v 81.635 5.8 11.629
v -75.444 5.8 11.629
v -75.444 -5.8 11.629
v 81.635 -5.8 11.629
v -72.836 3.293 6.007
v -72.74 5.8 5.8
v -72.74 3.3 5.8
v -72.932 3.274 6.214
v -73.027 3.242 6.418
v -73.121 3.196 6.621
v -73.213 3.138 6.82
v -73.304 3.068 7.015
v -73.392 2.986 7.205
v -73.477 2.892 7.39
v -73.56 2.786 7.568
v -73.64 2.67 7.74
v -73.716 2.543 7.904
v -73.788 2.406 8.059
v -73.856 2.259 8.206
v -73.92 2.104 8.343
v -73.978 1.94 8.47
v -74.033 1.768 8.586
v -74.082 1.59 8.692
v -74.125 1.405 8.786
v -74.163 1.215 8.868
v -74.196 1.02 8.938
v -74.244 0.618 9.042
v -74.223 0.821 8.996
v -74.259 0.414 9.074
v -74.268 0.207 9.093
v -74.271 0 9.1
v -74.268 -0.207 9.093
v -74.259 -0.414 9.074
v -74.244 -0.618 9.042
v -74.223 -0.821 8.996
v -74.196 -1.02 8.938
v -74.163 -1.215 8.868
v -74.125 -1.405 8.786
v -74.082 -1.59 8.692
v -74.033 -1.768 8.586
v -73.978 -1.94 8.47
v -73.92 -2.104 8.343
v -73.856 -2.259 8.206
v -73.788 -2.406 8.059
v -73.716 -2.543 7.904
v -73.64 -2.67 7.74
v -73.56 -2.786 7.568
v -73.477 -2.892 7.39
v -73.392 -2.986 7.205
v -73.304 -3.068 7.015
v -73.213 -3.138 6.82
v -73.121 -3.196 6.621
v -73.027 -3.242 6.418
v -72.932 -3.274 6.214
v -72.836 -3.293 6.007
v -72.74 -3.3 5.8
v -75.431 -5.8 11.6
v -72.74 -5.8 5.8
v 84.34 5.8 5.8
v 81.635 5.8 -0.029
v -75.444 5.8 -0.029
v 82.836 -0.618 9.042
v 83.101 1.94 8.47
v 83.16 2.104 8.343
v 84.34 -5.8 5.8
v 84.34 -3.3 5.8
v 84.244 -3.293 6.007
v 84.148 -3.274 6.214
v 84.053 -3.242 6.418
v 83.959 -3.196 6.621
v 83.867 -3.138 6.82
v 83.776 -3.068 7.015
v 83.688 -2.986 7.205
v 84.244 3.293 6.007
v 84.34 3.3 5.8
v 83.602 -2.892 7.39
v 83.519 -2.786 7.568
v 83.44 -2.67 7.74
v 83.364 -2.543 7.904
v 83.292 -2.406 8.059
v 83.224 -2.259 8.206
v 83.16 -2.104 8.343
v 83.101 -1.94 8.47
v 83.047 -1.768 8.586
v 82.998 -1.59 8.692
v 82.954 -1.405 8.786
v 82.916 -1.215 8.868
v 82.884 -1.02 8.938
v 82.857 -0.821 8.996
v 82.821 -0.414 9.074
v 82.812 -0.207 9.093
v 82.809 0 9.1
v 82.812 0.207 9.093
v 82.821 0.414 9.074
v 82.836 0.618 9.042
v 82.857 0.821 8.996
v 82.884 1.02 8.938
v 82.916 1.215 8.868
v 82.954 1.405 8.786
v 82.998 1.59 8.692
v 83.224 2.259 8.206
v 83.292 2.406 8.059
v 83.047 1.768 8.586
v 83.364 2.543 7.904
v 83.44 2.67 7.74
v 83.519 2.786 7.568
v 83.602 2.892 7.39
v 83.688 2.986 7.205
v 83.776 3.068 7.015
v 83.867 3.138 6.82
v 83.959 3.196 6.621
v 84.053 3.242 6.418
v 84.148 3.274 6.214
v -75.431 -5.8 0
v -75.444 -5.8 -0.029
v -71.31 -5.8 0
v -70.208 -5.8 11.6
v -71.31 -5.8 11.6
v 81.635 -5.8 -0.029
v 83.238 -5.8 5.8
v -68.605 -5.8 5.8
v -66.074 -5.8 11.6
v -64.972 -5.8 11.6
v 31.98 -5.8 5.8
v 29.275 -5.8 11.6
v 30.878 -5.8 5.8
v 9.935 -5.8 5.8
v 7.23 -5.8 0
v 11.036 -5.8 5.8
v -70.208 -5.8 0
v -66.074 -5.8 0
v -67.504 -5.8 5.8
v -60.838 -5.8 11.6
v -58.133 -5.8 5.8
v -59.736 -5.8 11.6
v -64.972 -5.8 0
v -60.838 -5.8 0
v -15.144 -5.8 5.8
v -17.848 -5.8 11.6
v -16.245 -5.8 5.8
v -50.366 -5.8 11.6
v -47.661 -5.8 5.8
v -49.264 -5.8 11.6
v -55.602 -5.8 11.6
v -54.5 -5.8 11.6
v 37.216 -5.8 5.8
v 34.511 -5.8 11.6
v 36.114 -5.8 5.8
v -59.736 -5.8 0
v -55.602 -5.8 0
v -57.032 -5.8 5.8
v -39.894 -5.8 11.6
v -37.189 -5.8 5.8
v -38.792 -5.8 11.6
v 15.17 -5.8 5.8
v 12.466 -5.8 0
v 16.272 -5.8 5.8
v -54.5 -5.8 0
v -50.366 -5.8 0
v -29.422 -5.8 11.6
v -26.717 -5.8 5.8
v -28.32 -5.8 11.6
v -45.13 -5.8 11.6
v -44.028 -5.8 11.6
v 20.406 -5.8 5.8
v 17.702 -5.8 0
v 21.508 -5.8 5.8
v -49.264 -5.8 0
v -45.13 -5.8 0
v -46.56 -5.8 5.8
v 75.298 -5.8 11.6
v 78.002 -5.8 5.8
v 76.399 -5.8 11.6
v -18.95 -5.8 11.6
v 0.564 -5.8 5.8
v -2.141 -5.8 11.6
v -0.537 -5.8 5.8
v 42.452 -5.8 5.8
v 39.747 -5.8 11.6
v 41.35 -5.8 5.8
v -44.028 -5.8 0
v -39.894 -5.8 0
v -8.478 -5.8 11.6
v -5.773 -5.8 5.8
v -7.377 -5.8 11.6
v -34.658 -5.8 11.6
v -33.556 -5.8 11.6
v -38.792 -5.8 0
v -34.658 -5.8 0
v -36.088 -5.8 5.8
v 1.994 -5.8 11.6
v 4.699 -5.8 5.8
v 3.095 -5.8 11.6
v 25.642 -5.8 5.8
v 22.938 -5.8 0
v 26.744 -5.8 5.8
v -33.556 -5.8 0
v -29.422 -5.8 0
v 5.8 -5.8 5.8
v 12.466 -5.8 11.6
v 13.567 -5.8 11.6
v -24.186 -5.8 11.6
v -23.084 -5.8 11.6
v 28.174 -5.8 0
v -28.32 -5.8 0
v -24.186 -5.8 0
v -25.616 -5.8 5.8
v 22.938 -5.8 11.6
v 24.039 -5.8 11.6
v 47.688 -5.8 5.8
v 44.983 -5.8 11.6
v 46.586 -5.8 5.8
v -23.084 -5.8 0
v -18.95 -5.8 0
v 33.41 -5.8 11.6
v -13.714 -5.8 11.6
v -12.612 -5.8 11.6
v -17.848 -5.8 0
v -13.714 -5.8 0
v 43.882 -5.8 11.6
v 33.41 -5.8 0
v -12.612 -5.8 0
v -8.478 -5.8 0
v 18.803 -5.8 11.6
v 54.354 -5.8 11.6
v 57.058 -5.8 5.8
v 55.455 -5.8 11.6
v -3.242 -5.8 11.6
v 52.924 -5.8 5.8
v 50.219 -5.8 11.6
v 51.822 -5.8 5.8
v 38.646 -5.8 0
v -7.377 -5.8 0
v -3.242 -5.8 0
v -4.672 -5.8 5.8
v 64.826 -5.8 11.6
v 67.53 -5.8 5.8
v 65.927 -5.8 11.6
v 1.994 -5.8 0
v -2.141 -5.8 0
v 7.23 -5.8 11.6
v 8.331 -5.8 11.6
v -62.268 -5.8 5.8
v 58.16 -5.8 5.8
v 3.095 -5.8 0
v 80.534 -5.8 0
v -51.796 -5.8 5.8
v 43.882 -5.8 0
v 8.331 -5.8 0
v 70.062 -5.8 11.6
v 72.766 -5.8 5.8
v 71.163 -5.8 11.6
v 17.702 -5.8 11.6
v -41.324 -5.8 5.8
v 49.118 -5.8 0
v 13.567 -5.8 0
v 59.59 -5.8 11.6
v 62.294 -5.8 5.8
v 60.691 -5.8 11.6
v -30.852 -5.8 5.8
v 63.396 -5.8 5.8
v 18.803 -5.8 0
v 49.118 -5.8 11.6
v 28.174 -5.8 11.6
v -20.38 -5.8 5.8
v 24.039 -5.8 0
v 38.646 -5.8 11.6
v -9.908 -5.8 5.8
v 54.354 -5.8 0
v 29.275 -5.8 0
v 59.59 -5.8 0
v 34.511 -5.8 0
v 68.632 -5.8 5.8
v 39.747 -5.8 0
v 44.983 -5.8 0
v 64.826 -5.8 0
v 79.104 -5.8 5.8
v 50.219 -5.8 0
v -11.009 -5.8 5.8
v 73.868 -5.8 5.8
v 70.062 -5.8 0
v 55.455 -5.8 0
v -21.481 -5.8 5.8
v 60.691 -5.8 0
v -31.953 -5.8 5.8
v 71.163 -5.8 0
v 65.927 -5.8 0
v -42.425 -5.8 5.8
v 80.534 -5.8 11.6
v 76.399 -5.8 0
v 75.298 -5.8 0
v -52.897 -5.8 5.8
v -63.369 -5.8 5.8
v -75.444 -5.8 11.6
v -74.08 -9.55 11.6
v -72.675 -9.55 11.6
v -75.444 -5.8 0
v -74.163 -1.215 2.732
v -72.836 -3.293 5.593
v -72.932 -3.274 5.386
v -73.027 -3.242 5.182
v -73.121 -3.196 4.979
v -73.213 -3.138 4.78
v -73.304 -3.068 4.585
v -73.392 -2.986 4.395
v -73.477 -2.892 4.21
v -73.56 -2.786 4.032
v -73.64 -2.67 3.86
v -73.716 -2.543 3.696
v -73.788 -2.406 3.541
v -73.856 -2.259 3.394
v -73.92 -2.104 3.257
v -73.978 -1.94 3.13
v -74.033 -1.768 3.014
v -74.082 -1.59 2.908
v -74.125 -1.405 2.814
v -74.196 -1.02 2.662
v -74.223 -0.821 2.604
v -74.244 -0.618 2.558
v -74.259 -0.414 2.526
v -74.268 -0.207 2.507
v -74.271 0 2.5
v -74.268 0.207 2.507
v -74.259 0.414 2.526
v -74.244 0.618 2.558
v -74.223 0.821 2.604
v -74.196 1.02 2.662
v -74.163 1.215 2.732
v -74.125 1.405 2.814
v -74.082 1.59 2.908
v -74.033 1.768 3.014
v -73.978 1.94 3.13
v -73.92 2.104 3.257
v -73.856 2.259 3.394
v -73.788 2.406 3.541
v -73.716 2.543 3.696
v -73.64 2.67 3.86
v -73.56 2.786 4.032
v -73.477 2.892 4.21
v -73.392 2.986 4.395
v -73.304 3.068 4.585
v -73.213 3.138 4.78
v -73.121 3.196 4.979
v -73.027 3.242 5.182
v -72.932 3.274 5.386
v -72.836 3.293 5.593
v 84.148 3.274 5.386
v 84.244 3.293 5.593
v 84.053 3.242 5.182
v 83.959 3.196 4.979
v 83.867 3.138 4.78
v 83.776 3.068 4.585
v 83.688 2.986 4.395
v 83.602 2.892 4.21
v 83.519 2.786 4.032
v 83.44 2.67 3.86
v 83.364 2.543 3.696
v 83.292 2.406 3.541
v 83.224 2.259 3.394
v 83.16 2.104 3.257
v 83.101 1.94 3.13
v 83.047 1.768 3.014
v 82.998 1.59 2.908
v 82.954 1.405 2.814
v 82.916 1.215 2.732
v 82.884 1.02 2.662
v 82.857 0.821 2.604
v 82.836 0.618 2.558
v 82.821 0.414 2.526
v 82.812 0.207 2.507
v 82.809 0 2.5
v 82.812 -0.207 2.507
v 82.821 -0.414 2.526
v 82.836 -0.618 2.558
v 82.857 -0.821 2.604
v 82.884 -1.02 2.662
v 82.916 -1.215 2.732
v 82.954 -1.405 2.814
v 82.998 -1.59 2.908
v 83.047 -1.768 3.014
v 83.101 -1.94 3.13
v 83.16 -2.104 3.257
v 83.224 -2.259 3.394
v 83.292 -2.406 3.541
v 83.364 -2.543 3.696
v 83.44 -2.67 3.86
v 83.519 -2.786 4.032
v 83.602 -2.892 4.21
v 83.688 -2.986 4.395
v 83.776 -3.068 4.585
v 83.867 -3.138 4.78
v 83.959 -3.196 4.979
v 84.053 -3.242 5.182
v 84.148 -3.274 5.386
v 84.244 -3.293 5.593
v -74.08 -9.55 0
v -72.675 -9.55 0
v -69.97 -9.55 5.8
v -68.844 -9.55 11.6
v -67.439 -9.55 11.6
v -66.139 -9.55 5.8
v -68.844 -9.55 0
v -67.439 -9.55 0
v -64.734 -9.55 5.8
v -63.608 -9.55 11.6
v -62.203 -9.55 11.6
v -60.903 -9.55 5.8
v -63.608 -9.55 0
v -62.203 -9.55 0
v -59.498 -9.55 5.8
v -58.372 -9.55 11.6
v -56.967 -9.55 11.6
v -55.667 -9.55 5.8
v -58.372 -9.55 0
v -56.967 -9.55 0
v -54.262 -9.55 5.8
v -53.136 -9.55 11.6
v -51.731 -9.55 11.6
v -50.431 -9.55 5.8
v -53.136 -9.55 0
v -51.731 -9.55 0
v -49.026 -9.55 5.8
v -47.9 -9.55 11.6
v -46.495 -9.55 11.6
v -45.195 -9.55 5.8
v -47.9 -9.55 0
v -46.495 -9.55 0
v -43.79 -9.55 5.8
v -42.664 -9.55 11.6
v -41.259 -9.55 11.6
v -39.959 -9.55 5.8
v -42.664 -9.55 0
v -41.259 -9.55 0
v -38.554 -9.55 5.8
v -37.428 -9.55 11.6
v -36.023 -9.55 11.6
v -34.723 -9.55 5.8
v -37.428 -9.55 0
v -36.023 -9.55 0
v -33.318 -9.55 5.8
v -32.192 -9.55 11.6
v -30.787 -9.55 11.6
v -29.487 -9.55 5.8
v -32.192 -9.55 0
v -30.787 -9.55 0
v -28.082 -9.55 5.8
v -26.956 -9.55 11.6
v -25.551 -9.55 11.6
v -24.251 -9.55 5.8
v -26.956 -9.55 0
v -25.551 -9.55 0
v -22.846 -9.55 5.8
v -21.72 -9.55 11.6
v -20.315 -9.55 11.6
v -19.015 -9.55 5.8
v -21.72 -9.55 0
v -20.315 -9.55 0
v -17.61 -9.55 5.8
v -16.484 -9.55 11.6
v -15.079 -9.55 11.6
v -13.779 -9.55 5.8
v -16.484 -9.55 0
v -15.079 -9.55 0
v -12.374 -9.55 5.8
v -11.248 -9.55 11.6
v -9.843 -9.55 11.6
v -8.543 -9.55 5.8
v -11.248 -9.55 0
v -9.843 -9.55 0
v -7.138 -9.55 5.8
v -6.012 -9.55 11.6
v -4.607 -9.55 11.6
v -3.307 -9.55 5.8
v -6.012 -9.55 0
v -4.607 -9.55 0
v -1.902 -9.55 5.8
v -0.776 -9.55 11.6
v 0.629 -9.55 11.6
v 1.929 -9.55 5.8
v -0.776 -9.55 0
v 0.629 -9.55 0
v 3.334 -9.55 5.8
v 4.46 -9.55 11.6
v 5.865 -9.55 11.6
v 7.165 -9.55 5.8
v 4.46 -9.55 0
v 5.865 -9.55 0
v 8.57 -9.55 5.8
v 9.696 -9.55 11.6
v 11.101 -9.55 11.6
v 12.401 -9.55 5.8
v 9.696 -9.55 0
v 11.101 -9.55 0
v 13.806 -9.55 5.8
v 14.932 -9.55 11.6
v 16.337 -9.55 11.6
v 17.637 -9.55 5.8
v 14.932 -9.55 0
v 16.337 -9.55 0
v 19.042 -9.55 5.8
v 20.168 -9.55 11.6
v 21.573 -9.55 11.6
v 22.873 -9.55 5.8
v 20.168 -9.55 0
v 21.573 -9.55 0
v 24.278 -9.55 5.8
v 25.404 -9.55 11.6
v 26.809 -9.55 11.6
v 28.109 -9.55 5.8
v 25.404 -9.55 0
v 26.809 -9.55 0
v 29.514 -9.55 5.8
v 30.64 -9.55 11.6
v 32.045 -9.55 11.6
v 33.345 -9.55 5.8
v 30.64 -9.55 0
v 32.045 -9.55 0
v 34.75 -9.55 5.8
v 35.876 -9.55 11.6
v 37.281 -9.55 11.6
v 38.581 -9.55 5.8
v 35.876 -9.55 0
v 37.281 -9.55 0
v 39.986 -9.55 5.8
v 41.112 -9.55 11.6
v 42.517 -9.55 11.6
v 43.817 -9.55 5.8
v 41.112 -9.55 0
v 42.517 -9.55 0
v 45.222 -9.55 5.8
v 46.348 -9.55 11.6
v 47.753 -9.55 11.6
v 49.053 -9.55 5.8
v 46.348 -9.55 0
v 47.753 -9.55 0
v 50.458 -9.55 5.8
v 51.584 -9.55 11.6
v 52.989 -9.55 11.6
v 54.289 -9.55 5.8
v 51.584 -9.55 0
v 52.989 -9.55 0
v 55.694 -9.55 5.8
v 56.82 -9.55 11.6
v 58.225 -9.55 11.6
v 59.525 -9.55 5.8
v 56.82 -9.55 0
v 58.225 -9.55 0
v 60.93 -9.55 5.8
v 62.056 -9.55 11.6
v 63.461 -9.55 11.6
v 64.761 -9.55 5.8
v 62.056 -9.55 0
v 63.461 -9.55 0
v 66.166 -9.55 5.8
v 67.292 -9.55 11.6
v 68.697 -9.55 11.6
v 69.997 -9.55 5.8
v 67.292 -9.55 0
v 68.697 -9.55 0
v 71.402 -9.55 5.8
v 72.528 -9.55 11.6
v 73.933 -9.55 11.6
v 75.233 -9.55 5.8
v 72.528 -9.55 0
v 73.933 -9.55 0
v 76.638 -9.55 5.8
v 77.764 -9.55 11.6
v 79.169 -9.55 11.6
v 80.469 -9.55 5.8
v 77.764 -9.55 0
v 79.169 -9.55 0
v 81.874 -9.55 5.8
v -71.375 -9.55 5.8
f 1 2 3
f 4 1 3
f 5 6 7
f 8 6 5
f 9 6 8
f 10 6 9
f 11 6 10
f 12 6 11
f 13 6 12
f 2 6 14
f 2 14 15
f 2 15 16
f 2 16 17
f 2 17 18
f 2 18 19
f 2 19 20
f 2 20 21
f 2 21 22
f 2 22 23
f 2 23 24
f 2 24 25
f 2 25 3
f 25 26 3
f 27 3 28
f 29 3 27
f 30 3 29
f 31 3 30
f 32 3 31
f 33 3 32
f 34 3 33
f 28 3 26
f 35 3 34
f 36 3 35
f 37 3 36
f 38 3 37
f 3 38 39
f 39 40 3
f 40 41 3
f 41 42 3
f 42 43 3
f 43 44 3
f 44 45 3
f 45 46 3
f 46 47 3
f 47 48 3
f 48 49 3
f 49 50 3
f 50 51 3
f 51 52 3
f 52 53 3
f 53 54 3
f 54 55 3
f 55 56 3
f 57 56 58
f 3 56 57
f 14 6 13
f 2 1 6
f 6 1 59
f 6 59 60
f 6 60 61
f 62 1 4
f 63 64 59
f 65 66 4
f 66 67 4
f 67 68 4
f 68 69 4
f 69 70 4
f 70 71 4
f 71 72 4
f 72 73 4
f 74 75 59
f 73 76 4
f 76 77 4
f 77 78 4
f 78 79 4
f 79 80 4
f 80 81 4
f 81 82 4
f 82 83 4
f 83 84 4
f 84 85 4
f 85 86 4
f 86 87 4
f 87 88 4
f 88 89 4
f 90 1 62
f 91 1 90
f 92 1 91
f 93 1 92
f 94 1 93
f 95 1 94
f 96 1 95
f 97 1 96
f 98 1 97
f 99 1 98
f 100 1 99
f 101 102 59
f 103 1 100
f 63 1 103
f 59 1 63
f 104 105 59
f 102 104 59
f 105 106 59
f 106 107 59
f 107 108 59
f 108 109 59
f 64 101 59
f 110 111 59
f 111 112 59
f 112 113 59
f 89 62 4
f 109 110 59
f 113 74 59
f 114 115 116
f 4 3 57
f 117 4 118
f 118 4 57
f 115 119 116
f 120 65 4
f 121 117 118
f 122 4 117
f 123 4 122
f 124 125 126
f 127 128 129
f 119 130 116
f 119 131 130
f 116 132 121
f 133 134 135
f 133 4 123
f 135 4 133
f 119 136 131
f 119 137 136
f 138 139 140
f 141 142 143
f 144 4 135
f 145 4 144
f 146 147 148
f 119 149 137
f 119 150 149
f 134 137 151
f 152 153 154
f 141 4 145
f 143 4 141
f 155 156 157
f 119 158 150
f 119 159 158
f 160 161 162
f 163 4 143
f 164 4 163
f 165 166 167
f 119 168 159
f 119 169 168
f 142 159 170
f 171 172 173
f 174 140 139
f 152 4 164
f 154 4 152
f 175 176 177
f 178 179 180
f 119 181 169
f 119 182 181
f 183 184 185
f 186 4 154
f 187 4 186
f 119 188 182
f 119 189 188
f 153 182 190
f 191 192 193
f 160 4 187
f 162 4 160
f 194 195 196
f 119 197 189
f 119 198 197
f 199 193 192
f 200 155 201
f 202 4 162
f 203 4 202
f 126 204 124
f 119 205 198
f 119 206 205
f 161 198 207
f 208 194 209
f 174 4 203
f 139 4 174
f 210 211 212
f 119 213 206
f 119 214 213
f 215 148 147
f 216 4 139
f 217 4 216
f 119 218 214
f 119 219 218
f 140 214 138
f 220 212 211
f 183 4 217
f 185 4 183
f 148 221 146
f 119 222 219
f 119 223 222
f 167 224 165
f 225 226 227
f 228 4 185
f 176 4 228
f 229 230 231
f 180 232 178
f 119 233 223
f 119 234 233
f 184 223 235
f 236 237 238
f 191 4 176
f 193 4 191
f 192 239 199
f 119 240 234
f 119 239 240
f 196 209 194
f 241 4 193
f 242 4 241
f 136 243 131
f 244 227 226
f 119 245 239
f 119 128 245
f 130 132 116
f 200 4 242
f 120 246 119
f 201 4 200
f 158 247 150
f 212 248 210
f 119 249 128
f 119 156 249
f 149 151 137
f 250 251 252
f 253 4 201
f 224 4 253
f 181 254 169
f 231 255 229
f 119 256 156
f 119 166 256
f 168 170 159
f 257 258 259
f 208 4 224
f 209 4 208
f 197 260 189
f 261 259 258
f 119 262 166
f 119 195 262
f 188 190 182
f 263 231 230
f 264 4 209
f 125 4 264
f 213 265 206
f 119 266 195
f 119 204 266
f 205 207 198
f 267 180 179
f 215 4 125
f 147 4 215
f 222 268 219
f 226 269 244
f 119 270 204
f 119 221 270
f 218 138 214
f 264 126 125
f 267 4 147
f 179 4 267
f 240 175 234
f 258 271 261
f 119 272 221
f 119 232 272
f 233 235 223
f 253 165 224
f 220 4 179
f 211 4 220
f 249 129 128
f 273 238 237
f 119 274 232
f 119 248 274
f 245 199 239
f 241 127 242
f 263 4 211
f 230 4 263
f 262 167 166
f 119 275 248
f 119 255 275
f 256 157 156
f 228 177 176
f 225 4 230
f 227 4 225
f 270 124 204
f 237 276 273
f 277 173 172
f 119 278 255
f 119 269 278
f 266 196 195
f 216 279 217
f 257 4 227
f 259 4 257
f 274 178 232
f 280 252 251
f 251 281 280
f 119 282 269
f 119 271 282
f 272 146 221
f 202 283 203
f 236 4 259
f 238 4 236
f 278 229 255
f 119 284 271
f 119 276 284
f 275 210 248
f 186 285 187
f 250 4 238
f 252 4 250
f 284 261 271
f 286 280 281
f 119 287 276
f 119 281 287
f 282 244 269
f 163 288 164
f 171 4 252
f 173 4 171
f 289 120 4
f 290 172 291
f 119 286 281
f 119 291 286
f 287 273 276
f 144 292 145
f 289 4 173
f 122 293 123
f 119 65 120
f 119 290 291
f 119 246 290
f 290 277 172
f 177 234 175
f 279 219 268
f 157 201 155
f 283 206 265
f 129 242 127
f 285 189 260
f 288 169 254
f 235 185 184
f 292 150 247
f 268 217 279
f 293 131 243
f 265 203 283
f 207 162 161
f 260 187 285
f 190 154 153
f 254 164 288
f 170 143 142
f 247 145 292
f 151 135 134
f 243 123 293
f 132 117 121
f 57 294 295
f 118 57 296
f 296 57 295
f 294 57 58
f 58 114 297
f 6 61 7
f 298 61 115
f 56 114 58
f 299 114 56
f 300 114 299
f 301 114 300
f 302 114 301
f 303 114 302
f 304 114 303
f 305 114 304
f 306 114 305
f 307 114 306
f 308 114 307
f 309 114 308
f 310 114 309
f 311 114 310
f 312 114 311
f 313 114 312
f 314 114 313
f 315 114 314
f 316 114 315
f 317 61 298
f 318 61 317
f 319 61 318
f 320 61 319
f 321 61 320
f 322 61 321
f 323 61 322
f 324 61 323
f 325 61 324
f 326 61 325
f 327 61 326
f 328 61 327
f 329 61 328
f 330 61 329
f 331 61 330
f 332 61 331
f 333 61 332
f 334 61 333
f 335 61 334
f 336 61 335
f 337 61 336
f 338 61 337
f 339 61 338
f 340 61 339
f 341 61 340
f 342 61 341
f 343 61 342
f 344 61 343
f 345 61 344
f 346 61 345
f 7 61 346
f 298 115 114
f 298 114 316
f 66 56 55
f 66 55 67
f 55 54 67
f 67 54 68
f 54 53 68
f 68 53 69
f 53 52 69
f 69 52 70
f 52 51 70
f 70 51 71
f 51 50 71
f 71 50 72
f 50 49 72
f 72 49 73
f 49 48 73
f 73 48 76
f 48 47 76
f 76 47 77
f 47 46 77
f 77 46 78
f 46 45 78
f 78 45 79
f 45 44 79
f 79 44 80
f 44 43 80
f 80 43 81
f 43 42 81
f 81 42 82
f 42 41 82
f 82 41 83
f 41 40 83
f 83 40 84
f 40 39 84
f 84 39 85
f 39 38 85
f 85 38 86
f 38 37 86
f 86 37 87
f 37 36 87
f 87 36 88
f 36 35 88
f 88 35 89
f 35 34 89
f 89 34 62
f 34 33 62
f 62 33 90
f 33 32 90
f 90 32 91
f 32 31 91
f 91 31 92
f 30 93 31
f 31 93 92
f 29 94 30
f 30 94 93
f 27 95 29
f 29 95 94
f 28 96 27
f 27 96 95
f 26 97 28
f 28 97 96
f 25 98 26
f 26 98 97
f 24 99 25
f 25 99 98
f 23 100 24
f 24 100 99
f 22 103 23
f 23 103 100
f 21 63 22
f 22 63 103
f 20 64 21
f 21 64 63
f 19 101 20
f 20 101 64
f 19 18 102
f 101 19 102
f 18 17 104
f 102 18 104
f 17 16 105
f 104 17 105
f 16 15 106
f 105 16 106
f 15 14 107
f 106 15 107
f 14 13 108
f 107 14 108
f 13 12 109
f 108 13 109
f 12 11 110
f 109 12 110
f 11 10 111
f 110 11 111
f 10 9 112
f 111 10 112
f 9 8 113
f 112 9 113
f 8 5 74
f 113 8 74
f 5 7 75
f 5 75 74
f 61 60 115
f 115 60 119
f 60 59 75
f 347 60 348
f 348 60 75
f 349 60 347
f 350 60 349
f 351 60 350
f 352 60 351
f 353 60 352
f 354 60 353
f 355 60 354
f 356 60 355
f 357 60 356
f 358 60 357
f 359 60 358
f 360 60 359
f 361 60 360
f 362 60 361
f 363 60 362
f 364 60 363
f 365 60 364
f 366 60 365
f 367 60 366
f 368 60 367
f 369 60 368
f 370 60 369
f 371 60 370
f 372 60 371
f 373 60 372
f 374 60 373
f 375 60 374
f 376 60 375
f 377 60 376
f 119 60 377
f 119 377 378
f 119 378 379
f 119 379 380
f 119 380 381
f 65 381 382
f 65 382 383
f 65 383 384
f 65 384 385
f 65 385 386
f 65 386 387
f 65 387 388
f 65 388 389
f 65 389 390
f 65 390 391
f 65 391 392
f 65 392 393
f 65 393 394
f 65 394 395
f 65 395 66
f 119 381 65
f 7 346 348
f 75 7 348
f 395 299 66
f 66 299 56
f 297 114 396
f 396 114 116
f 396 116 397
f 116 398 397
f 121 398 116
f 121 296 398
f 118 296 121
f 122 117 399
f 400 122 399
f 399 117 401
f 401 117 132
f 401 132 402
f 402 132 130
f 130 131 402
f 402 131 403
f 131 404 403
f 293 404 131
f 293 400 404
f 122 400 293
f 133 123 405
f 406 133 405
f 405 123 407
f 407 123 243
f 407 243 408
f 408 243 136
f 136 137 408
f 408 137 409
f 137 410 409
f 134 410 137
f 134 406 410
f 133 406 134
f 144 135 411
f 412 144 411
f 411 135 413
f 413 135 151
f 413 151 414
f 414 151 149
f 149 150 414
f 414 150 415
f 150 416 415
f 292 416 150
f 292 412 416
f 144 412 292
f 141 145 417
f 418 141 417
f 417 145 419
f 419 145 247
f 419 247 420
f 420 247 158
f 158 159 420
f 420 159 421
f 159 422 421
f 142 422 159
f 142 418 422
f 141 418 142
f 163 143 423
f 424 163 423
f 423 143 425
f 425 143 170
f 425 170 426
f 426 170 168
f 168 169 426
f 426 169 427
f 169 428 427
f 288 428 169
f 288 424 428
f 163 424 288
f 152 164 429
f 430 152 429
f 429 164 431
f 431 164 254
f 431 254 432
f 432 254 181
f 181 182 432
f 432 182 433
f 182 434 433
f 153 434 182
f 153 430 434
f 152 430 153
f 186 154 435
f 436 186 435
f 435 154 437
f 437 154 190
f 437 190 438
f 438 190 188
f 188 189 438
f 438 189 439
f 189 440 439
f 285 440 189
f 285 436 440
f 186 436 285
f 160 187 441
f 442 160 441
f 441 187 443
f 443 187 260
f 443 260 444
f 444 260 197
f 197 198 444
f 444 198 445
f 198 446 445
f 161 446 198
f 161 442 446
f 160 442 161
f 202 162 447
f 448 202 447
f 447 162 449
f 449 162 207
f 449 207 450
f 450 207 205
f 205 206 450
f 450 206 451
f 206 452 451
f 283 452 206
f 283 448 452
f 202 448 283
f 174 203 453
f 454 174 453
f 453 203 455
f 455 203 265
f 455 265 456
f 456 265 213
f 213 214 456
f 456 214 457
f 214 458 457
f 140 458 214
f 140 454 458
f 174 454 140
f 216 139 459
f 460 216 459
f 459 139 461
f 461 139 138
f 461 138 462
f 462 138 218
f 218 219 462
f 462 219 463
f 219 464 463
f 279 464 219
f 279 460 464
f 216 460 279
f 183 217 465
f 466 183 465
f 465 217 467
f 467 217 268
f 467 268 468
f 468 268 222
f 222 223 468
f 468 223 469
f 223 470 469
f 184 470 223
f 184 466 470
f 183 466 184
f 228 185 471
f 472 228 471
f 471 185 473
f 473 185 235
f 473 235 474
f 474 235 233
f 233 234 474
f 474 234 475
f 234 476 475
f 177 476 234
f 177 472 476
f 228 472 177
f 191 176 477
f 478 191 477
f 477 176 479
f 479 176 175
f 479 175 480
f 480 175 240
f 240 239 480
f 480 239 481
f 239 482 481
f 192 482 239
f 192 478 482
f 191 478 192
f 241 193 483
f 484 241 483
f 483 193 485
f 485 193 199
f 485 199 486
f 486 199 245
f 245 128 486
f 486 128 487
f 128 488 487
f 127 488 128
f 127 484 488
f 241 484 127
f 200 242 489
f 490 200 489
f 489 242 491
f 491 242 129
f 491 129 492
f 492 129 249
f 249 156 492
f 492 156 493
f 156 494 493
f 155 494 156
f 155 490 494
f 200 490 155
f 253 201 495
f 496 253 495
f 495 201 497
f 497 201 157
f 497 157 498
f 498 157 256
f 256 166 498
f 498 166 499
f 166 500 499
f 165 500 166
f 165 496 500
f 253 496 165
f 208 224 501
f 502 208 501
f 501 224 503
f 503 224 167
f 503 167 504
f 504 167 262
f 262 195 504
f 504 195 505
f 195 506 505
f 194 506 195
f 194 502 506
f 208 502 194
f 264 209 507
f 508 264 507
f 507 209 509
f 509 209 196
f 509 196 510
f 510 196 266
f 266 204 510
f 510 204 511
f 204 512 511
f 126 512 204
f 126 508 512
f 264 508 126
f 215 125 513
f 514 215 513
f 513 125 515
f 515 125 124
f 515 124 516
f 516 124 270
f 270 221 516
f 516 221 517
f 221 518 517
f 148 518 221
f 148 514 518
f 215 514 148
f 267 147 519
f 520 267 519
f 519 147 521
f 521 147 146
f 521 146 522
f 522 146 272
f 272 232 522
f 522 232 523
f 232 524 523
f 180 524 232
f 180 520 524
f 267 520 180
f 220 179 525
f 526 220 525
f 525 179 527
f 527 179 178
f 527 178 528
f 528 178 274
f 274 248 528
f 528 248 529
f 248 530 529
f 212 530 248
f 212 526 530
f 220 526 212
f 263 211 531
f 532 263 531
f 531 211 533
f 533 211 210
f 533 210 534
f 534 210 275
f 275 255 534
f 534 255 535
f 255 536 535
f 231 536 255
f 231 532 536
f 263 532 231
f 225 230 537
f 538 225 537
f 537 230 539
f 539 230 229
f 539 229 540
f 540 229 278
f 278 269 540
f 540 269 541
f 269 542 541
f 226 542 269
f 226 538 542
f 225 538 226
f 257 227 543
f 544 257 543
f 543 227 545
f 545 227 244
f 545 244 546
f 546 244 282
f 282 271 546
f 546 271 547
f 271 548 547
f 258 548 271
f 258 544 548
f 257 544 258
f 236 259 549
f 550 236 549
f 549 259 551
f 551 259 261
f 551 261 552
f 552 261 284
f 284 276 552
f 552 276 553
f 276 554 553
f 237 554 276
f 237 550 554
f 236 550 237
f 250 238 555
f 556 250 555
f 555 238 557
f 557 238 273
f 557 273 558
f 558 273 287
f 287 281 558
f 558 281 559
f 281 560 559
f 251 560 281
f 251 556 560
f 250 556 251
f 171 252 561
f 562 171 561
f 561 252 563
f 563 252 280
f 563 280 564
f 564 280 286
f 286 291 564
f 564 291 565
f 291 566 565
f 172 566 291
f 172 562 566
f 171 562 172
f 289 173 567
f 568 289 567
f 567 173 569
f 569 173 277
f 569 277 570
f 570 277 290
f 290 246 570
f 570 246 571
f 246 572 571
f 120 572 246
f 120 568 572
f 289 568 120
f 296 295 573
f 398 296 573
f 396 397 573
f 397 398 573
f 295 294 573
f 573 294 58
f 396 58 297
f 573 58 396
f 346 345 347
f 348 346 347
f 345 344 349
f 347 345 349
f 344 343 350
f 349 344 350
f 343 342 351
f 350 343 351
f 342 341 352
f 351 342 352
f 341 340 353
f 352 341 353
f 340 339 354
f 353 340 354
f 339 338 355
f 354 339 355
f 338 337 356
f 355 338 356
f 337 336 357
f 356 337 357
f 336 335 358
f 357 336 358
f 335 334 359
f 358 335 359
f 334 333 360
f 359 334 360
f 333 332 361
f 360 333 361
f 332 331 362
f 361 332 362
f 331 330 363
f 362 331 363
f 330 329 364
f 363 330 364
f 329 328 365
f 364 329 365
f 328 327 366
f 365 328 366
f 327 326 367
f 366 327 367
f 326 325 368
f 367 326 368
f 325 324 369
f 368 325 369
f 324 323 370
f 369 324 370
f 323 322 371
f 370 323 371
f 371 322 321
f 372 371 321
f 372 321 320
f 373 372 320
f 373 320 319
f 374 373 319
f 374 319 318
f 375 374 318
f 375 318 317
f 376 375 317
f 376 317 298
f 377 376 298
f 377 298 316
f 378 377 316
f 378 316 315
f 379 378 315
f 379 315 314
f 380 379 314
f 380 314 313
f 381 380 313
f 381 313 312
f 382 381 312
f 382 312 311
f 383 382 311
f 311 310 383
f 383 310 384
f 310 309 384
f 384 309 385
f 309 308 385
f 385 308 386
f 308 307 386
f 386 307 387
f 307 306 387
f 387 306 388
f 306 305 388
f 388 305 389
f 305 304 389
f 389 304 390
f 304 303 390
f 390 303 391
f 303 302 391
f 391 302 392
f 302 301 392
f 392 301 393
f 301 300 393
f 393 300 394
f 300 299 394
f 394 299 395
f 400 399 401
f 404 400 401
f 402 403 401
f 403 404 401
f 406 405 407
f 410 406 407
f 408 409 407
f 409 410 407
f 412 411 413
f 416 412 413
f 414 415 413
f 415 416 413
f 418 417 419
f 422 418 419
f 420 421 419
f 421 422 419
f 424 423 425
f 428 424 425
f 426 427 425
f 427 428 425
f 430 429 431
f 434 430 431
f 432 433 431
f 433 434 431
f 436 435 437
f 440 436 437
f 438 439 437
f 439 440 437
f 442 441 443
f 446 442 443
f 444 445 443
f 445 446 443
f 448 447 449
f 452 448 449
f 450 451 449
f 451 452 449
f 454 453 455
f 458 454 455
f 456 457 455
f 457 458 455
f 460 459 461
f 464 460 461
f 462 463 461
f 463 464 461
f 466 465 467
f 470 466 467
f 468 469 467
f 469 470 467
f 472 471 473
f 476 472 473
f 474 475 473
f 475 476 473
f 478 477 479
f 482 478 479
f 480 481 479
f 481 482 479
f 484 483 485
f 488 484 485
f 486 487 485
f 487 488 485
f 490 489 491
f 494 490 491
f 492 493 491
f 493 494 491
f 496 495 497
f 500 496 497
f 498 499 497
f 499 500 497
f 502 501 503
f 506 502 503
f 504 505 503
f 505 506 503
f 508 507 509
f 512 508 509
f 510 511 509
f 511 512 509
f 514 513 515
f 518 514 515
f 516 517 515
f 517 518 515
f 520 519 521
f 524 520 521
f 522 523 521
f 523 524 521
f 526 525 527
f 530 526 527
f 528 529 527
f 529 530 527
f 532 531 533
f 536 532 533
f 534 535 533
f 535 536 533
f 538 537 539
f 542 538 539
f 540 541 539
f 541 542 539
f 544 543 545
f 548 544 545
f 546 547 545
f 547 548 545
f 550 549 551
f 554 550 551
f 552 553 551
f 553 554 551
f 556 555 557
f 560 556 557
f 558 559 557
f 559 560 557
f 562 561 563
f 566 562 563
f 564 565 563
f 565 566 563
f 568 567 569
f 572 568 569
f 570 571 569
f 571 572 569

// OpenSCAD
// Parametric Modular Rack Mark "Ckaos" Moissette
//Based on the work of MattMoses and Fdavies :
//http://forums.reprap.org/read.php?1,51452,52099#msg-52099
//and Forrest Higgs:
// http://technocraticanarchist.blogspot.com/2010/01/high-speed-alternative-to-belts.html
//It is licensed under the Creative Commons - GNU GPL license.
// © 2011 by Mark "Ckaos" Moissette
//more info at :www.kaosat.net and
//http://www.thingiverse.com/thing:6011



pi=3.1415926535897932384626433832795;
innerRadius=6.60/2;//shaft radius, in mm
borders=2.5;//how thick should the borders around the central "shaft" be, in mm
diametralPitch=12;
numberOfTeeth=30;
pressureAngle=20*pi/180;
centerAngle=25;//angle at center of teeth


//example usage
rack(innerRadius,borders,diametralPitch,numberOfTeeth,pressureAngle,centerAngle);

//demo_gear([30,30,30],diametralPitch);



module rack(innerRadius,borders,P,N,PA,CA)
{
	// P = diametral pitch
	// N = number of teeth
	// PA = pressure angle in radians
	// x, y = linear offset distances
	a = 1/P; // addendum (also known as "module")
	d = 1.25/P; // dedendum (this is set by a standard)
	multiplier=20;//20
	height=(d+a)*multiplier;
	
	
	// find the tangent of pressure angle once
	tanPA = tan(PA*(180/pi));
	// length of bottom and top horizontal segments of tooth profile
	botL = (pi/P/2 - 2*d*tanPA)*multiplier;
	topL =( pi/P/2 - 2*a*tanPA)*multiplier;

	slantLng=tanPA*height;
	realBase=2*slantLng+topL;
	
	
	offset=topL+botL+2*slantLng;
	length=(realBase+botL)*N;

	supportSize=(innerRadius+borders)*2;

	//calculate tooth params
	basesegmentL=realBase/2;
	basesegmentW=supportSize/2;

	topsegmentL=topL/2;
	topsegmentW=supportSize/2;

	baseoffsetY=tan(CA)*basesegmentW;
	topoffsetY=tan(CA)*topsegmentW;
	
	//calculate support params

	totalSupportLength=(N)*(offset);
	supportL=totalSupportLength/2;
	supportW=supportSize/1.99;
	
	echo("Total length",totalSupportLength+baseoffsetY);
	echo("Total height",supportSize);

	
	rotate([90,90,0])
	{
	translate([-supportSize/2,supportSize/2,0])
	{
	union()
	{
		difference()
		{
			support(supportL,supportW,supportSize,baseoffsetY);
			rotate([90,90,0]) 
			{cylinder(h=length+10,r=innerRadius,center=true,$fn=100);}
		}

	
		for (i = [0:N-1]) 
		{
			translate([0,i*offset-length/2+realBase/2,supportSize/2+height/2]) 
			{	
				
				tooth(basesegmentL,basesegmentW,topsegmentL,topsegmentW,height,baseoffsetY,topoffsetY);
				
			}
		}
	}
	
	}
	}
}

module support(supportL,supportW,height,offsetY)
{
	 tooth(supportL,supportW,supportL,supportW,height,offsetY,offsetY);
}



module tooth(basesegmentL,basesegmentW,topsegmentL,topsegmentW,height,baseoffsetY,topoffsetY)//top : width*length, same for base
{
	
	////////////////
	basePT1=[
	-basesegmentW,
	basesegmentL-baseoffsetY,
	-height/2];

	basePT2=[
	0,
	basesegmentL,
	-height/2];

	basePT3=[
	basesegmentW,
	basesegmentL-baseoffsetY,
	-height/2];

	basePT4=[
	basesegmentW,
	basesegmentL-(baseoffsetY+basesegmentL*2),
	-height/2];
	
	basePT5=[
	0,
	-basesegmentL,
	-height/2];

	basePT6=[
	-basesegmentW,
	basesegmentL-(baseoffsetY+basesegmentL*2),
	-height/2];
	//////////////////////////
	topPT1=[
	-topsegmentW,
	topsegmentL-topoffsetY,
	height/2];

	topPT2=[
	0,
	topsegmentL,
	height/2];

	topPT3=[
	topsegmentW,
	topsegmentL-topoffsetY,
	height/2];

	topPT4=[
	topsegmentW,
	topsegmentL-(topoffsetY+topsegmentL*2),
	height/2];
	
	topPT5=[
	0,
	-topsegmentL,
	height/2];

	topPT6=[
	-topsegmentW,
	topsegmentL-(topoffsetY+topsegmentL*2),
	height/2];
	//////////////////////////

	//////////////////////////

	polyhedron(
	points=[
		basePT1,
		basePT2,
		basePT3,
		basePT4,
		basePT5,
		basePT6,
		topPT1,
		topPT2,
		topPT3,
		topPT4,
		topPT5,
		topPT6],
	triangles=[
	//base
	[5,1,0],
	[4,1,5],
	[4,2,1],
	[3,2,4],	

	//front
	[1,6,0],
	[7,6,1],
	[2,7,1],
	[8,7,2],
	//back
	[11,10,5],
	[5,10,4],
	[10,9,4],
	[4,9,3],	
	//side 1
	[0,11,5],
	[6,11,0],
	//side 2
	[3,8,2],
	[9,8,3],
	//top
	[9,10,8],
	[10,7,8],
	[11,7,10],
	[6,7,11],
	]
	);
}

module demo_gear(position,diametralPitch)
{
	wheelSize=12;
rotate([0,90,180])
translate(position)

{
gear (
	number_of_teeth=8,
	circular_pitch=300, 
	pressure_angle=19.34,
	gear_thickness=wheelSize/2,
	rim_thickness=wheelSize/2,
	hub_thickness=0,
	bore_diameter=2,
	backlash=0,twist=centerAngle,involute_facets=15);

translate([0,0,wheelSize/2])
rotate([0,0,-centerAngle])
gear (
	number_of_teeth=8,
	circular_pitch=300, 
	pressure_angle=19.34,
	gear_thickness=wheelSize/2,
	rim_thickness=wheelSize/2,
	hub_thickness=0,
	bore_diameter=2,
	backlash=0,twist=-centerAngle,involute_facets=15);

}

}
